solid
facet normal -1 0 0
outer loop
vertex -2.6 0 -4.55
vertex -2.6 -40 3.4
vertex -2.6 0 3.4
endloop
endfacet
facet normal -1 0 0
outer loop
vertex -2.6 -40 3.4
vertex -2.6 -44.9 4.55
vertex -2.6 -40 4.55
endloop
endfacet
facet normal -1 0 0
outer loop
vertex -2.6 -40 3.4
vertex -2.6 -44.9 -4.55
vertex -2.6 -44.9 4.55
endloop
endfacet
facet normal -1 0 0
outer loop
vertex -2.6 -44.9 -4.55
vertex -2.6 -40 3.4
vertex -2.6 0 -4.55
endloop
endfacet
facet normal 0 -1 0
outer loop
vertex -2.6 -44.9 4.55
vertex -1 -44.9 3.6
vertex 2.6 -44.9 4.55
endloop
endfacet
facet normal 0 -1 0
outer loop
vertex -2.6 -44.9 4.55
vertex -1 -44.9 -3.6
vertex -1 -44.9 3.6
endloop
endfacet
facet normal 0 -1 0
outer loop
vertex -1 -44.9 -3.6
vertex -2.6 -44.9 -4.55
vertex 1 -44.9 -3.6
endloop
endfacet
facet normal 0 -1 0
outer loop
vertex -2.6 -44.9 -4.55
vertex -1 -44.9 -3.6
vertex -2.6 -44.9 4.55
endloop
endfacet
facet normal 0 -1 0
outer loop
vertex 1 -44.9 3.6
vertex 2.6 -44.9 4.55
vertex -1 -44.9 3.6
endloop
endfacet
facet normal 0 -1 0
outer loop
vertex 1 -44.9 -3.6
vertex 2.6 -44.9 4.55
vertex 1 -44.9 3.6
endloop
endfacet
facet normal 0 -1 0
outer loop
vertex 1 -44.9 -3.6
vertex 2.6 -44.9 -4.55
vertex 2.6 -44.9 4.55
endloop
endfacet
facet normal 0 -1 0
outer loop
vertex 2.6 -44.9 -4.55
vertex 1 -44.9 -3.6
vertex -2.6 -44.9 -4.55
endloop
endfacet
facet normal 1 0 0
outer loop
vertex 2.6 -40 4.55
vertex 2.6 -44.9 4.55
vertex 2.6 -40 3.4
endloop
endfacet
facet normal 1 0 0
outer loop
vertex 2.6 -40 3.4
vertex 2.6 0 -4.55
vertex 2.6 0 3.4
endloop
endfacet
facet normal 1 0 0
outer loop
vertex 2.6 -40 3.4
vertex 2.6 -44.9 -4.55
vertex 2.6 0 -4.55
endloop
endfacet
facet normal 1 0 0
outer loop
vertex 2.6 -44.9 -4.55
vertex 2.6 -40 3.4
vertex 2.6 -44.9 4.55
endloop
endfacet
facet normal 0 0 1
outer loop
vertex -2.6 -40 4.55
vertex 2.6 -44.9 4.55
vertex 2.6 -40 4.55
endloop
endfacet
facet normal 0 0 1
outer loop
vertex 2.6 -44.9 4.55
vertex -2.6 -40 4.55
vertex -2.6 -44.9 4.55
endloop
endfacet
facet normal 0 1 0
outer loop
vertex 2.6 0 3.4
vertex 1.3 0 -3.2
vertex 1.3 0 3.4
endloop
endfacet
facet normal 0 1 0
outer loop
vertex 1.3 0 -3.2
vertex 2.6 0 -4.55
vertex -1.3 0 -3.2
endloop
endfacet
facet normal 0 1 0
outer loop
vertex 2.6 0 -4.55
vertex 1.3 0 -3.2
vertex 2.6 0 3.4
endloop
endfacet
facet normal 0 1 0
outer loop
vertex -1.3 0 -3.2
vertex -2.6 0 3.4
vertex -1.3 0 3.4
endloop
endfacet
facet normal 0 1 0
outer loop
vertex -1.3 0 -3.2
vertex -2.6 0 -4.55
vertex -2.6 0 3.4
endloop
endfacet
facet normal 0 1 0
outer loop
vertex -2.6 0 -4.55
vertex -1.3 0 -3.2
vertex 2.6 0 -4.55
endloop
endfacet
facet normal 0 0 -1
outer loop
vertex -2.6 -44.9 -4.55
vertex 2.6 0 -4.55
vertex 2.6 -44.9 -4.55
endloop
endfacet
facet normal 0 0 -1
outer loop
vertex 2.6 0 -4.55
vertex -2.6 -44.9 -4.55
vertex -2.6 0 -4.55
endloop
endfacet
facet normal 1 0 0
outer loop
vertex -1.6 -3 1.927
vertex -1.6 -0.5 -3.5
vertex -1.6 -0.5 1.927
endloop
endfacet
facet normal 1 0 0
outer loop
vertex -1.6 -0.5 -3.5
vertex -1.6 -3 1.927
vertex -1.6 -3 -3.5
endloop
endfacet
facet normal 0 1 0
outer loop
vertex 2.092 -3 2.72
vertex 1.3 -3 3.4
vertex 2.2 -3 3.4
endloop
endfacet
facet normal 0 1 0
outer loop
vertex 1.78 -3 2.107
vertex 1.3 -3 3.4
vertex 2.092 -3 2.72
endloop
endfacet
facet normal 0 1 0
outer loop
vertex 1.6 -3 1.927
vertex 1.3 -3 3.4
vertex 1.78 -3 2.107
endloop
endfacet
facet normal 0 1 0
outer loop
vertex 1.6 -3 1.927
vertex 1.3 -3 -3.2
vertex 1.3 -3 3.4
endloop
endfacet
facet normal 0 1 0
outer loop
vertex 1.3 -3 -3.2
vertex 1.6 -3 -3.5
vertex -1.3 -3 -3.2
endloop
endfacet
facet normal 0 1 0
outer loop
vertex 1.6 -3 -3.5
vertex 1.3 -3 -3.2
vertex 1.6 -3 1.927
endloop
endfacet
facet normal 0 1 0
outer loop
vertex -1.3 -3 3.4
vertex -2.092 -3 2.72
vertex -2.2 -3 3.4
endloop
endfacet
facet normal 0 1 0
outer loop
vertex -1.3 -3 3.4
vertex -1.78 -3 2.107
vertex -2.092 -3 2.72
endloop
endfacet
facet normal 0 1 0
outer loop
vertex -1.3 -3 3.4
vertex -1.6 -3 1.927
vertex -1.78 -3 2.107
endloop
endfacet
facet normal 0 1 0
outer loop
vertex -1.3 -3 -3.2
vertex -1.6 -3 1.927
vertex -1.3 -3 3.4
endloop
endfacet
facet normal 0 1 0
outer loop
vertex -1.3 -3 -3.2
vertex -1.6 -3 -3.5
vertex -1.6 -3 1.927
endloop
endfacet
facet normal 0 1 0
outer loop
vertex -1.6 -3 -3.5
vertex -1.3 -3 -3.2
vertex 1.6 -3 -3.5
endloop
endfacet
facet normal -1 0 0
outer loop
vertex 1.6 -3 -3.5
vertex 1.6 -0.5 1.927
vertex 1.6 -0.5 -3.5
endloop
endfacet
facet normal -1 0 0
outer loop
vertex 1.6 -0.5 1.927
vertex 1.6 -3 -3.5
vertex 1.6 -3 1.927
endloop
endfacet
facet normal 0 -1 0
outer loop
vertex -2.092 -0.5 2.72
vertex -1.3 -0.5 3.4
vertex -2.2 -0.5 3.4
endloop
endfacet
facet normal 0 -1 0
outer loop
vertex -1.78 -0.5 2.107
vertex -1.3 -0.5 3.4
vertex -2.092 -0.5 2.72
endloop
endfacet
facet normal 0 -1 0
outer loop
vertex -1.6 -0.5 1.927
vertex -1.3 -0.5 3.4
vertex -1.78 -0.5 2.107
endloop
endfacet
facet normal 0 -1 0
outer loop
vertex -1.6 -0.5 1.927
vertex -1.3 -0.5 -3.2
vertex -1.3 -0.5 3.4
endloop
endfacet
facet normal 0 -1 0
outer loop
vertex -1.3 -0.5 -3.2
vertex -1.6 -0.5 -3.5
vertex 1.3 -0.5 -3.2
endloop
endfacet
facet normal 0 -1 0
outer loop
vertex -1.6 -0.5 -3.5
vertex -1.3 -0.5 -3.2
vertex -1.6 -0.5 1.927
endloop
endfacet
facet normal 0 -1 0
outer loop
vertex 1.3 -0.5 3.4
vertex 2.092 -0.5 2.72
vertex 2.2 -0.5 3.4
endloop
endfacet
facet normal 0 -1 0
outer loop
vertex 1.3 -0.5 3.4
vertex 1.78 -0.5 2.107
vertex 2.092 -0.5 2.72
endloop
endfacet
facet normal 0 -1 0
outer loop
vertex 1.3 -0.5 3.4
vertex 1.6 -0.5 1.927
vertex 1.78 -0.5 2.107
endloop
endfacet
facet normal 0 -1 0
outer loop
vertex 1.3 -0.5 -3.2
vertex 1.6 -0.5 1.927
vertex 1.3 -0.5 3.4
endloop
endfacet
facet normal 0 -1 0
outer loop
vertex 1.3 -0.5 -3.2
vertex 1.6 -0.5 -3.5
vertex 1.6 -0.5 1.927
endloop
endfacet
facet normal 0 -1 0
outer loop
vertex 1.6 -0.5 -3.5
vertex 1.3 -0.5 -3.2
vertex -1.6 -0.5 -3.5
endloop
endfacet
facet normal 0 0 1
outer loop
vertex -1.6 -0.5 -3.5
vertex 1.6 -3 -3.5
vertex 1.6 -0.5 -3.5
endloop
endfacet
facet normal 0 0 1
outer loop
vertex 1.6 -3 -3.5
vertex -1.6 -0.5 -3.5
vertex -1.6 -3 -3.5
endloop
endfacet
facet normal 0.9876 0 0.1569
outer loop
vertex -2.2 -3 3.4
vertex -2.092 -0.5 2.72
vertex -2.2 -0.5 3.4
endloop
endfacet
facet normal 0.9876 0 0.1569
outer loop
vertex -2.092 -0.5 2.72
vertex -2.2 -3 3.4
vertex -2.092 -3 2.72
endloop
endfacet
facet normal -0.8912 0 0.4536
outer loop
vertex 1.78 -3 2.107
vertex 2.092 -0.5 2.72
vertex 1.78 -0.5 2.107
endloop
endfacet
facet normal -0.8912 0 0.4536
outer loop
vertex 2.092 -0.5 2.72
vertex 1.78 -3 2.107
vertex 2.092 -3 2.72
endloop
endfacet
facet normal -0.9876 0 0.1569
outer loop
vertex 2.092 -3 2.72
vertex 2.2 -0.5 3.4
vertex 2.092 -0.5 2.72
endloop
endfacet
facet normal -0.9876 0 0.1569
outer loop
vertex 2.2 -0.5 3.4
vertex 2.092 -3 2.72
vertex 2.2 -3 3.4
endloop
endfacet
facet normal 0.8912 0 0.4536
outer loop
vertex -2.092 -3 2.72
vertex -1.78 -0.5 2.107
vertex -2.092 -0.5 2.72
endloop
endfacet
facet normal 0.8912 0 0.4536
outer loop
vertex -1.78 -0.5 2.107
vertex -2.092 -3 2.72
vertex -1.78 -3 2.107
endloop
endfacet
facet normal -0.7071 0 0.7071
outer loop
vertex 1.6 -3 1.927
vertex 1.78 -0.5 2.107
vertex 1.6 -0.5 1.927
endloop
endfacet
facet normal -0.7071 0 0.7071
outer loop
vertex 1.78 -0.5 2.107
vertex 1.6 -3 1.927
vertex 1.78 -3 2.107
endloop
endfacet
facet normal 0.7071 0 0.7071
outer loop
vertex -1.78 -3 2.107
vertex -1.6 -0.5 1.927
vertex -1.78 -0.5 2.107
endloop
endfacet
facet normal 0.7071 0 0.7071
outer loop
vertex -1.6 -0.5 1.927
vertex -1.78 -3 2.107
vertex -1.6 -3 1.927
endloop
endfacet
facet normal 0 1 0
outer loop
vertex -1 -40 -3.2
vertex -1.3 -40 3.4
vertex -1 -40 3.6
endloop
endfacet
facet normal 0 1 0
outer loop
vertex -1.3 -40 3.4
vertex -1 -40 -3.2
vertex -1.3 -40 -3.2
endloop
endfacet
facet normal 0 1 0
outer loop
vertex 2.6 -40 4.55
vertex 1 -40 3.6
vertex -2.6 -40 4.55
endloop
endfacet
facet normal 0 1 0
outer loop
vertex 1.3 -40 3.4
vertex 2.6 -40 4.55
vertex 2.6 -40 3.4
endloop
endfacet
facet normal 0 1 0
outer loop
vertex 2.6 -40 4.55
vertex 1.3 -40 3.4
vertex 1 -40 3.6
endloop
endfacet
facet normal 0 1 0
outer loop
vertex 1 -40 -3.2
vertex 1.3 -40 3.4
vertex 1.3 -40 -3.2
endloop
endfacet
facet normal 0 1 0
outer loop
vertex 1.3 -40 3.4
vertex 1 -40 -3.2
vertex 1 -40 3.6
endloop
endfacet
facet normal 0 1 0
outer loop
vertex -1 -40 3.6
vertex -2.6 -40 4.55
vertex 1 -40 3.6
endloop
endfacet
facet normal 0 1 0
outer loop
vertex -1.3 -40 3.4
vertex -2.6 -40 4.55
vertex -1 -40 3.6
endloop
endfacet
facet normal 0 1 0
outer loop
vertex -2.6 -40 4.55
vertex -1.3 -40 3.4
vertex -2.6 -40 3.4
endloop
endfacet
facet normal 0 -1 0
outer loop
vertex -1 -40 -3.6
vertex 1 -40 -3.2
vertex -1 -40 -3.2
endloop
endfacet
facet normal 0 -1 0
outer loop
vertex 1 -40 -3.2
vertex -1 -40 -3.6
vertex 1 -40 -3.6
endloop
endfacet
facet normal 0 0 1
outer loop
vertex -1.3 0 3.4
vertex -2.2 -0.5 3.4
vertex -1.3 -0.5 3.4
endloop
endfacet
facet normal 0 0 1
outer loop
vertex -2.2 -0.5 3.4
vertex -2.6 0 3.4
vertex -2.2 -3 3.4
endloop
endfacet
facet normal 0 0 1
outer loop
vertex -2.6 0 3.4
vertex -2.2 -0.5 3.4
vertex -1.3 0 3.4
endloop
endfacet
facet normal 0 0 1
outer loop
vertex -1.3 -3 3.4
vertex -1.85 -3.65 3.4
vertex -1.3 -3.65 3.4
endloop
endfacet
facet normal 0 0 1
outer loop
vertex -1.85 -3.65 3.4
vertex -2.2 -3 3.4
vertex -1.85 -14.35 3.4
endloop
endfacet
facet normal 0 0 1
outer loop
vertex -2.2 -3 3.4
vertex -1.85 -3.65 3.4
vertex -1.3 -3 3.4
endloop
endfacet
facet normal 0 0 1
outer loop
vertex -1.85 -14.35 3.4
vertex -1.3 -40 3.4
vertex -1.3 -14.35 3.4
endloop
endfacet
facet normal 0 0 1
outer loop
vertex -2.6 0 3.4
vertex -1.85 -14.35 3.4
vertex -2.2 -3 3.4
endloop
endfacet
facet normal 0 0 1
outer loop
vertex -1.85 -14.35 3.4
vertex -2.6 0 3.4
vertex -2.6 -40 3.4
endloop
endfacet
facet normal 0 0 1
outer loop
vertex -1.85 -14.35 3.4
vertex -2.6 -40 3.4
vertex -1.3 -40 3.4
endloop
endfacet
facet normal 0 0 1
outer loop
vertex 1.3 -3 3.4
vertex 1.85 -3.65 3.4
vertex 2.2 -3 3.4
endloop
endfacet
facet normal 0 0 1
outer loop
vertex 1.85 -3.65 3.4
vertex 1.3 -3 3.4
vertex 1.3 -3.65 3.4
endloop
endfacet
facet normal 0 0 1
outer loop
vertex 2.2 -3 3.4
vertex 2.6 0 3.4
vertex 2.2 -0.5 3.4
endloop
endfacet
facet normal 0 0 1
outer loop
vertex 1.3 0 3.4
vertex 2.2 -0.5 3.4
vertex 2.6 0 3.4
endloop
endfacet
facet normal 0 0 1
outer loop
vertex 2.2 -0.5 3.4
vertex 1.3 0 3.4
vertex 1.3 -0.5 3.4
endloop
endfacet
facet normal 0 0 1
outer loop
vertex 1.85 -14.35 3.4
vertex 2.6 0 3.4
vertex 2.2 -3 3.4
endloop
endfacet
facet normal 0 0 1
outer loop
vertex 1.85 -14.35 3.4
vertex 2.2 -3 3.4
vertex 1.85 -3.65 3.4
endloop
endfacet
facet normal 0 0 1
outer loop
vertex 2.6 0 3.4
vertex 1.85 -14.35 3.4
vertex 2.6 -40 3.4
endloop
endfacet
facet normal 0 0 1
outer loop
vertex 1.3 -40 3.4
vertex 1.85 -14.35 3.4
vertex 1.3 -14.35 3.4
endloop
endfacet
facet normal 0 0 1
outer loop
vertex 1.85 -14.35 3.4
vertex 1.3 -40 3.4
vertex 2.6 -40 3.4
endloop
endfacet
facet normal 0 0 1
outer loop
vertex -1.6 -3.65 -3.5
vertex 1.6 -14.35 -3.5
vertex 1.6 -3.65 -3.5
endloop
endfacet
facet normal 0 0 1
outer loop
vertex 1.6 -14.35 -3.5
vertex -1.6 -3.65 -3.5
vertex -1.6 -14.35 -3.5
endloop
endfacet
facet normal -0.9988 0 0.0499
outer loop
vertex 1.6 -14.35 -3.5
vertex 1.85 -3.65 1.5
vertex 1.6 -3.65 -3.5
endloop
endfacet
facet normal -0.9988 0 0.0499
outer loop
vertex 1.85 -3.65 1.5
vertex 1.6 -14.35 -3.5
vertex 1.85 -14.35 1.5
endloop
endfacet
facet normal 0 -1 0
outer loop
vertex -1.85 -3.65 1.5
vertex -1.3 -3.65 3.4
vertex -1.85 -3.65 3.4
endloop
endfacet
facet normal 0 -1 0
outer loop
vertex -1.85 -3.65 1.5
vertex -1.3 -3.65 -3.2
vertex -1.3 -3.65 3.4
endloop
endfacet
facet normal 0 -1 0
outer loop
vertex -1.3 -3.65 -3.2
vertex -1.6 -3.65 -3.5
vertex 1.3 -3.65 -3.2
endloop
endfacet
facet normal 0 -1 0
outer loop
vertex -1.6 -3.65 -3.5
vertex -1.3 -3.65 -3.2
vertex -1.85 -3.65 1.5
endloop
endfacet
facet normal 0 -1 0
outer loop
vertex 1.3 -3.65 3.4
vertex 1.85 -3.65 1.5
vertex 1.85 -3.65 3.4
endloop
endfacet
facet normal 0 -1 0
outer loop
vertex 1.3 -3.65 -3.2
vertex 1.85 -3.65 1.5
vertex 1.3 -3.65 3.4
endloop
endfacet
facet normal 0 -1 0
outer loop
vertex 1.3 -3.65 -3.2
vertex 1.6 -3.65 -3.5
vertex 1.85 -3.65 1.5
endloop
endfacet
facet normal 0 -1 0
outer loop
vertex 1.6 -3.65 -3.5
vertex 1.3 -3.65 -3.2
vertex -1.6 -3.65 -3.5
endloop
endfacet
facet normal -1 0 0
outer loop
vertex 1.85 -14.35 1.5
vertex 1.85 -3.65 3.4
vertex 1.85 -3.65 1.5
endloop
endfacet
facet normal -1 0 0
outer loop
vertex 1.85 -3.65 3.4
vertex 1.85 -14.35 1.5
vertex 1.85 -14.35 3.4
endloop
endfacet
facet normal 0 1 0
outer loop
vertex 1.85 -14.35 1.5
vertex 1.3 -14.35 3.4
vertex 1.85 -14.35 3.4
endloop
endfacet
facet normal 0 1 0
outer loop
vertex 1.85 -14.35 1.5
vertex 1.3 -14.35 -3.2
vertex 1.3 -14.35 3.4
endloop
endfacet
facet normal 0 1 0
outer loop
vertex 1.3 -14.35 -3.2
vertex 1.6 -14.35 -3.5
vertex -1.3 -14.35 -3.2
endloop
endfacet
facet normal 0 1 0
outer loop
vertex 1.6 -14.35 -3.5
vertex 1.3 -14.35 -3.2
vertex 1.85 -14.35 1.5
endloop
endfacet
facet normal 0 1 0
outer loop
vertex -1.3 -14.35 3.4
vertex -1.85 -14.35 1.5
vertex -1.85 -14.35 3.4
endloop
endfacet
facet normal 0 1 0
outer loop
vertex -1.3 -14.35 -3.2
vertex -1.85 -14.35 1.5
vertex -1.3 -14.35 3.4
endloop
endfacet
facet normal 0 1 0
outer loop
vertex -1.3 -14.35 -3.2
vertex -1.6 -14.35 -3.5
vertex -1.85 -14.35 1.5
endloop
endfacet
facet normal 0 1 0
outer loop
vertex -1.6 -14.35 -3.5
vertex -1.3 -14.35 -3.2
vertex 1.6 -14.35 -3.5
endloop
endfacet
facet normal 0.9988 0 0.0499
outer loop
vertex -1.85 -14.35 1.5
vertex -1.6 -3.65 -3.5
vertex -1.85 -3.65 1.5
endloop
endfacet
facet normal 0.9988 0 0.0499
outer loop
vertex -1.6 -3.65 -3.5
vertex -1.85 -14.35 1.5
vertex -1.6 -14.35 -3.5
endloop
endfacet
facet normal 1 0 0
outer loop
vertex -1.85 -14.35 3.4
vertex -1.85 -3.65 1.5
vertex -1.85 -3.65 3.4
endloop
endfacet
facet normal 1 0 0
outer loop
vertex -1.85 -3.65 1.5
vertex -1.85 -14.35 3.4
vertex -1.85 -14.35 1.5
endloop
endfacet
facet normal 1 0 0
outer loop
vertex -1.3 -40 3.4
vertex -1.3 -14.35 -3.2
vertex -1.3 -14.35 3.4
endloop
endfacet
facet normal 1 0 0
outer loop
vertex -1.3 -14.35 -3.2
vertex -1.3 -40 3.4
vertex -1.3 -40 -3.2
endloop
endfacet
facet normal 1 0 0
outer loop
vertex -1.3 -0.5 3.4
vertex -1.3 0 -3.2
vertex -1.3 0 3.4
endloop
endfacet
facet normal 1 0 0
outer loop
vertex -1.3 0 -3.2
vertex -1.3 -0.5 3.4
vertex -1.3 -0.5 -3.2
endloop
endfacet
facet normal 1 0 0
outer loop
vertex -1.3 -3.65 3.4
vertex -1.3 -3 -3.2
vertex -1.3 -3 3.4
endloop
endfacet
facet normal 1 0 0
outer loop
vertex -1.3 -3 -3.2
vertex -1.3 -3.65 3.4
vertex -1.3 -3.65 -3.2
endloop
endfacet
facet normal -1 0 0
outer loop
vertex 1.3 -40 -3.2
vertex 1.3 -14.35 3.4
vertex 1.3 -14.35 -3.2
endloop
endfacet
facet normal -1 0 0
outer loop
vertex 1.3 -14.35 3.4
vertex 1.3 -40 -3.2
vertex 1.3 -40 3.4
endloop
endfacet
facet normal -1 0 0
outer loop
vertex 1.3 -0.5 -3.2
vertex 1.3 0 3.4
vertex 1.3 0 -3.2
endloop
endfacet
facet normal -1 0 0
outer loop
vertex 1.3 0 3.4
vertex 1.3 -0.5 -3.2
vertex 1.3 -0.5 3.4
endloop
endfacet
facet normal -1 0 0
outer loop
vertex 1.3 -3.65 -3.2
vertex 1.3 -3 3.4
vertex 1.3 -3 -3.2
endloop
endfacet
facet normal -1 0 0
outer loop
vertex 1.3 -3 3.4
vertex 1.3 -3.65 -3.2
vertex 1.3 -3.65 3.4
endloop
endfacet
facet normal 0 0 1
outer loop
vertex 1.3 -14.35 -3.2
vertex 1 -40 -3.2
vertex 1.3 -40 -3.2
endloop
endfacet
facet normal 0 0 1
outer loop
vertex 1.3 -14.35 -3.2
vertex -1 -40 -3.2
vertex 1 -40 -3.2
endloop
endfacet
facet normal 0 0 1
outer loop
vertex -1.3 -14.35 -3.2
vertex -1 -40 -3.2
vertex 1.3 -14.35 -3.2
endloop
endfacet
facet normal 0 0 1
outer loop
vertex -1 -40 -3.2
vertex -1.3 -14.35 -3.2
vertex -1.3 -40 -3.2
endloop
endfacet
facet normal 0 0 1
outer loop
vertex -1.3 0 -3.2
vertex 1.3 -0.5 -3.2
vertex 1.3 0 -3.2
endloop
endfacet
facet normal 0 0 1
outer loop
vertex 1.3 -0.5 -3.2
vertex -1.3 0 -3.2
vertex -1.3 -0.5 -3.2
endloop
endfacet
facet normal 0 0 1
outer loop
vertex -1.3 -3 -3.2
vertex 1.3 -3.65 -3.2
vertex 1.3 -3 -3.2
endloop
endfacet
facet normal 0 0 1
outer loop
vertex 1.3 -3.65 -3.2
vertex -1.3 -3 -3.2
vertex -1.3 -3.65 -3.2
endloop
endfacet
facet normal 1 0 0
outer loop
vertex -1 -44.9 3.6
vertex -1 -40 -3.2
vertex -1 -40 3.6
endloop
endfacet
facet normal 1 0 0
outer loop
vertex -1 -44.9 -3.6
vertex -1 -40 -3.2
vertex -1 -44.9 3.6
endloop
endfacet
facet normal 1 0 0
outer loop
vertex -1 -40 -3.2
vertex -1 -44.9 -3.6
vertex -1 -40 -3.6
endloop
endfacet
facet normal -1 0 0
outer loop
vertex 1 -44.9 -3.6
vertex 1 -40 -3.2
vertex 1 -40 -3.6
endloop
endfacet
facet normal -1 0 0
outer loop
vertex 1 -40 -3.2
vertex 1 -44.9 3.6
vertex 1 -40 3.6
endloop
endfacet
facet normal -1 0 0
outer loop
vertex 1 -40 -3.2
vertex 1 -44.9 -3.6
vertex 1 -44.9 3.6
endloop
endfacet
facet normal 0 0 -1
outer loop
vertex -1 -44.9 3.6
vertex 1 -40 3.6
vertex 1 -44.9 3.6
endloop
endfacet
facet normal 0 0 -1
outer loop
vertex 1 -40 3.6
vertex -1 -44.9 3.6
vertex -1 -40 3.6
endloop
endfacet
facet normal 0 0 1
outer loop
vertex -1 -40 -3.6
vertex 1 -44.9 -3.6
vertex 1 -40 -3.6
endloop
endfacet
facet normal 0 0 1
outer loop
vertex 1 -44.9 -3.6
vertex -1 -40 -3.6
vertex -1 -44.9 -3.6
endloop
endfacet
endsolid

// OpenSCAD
// Mill-Max 852-10-010-10-003000 probe shroud
$fn = 20;
tol = 0.2;

// Manual measure of Mill-Max 852-10-010-10-003000 10pin micro header
header_xmm = 3;
header_ymm = 6.8;
header_cup_pin_depth_mm = 4.6;
header_pin_jig_mm = 6;
header_plastic_depth = 2.5; // measured 1.9

// Folded IDC cable 10 pin
idc_cable_h = 7; // 6mm
idc_cable_w = 1.8; // 2.5

// Shroud 
sthick = 2;
sdepth = 6;
shroud_header_l = 40;
shroud_cable_l = 5;
shroud_ledge = 0.5; // Transition between plastic and the metal solder cups (Measured to be 0.6mm)

shroud_lock_thickness = 1;

module probe_cap()
{
  cap_x = tol + header_xmm+sthick;
  cap_y = tol*1.5 + header_ymm+sthick;
  union()
  {
    linear_extrude(height = 10, convexity = 10)
    {
      difference()
      {
        union()
        {
          translate([0,0,0]) square([shroud_lock_thickness+cap_x, shroud_lock_thickness+cap_y], center=true);
          
          
        }
        translate([0,0,0])
          square([cap_x, cap_y], center=true);
      }
    }
  // Top Cut
  translate([0,(tol*1.5 + header_ymm+sthick)/2,shroud_header_l/2])
    cube([tol + header_xmm+sthick, 2, (shroud_header_l)], center=true);
  }
}

module probe_shroud()
{
  //%probe_cap();
  
//translate([0,0,shroud_header_l + shroud_cable_l])
rotate([90,0,0])
difference()
{
  case_depth = shroud_header_l+shroud_cable_l-0.1;

  union()
  { 
    translate([0,0,case_depth/2])
    cube([tol + header_xmm+sthick, tol*1.5 + header_ymm+sthick, case_depth], center=true);
  }
  
  // Header Probe Insert
  #translate([0,0,header_plastic_depth/2+0.5])
    cube([tol + header_xmm, tol + header_ymm, header_plastic_depth], center=true);
  
  translate([0,header_ymm/2,header_plastic_depth/2+0.5])
    cylinder(r = (header_xmm+sthick)/2-0.3, h = header_plastic_depth, center=true);
  
  // Top Cut
  translate([0,(header_ymm+sthick)/2,shroud_header_l/2])
    cube([tol + header_xmm+sthick, 2, (shroud_header_l)], center=true);

  // cutout
  //translate([0,0,0])
  //  cube([header_ymm/8, header_ymm*2, (header_plastic_depth*4)*2], center=true);
  
  // Extra Space for soldered cable to slide
  hull()
  {
    cutoutx = header_xmm;
    translate([0,0,header_plastic_depth/2+header_plastic_depth])
      cube([tol + cutoutx, tol + header_ymm, 0.2], center=true);
    translate([0,0,header_plastic_depth/2+0.5+header_plastic_depth+10])
      cube([tol + cutoutx, tol + header_ymm, 0.2], center=true);
    
 
    translate([0,5,header_plastic_depth/2+header_plastic_depth])
      cube([tol + cutoutx+0.5, tol + header_ymm, 0.2], center=true);
    translate([0,5,header_plastic_depth/2+0.5+header_plastic_depth+10])
      cube([tol + cutoutx+0.5, tol + header_ymm, 0.2], center=true);
  }
  
  // Shroud Header Holes
  translate([0,0,0])
    cube([tol/2 + header_xmm-shroud_ledge, tol/2 + header_ymm-shroud_ledge, shroud_header_l*2], center=true);
  translate([0,5,0])
    cube([tol/2 + header_xmm-shroud_ledge, tol/2 + header_ymm-shroud_ledge, shroud_header_l*2], center=true);
  
  // Shroud cable
  #translate([0,0,shroud_header_l+shroud_cable_l/2])
    cube([tol+idc_cable_w, tol+idc_cable_h, shroud_cable_l], center=true);
}
}

probe_shroud();

//translate([10,0,0])
//probe_cap();
